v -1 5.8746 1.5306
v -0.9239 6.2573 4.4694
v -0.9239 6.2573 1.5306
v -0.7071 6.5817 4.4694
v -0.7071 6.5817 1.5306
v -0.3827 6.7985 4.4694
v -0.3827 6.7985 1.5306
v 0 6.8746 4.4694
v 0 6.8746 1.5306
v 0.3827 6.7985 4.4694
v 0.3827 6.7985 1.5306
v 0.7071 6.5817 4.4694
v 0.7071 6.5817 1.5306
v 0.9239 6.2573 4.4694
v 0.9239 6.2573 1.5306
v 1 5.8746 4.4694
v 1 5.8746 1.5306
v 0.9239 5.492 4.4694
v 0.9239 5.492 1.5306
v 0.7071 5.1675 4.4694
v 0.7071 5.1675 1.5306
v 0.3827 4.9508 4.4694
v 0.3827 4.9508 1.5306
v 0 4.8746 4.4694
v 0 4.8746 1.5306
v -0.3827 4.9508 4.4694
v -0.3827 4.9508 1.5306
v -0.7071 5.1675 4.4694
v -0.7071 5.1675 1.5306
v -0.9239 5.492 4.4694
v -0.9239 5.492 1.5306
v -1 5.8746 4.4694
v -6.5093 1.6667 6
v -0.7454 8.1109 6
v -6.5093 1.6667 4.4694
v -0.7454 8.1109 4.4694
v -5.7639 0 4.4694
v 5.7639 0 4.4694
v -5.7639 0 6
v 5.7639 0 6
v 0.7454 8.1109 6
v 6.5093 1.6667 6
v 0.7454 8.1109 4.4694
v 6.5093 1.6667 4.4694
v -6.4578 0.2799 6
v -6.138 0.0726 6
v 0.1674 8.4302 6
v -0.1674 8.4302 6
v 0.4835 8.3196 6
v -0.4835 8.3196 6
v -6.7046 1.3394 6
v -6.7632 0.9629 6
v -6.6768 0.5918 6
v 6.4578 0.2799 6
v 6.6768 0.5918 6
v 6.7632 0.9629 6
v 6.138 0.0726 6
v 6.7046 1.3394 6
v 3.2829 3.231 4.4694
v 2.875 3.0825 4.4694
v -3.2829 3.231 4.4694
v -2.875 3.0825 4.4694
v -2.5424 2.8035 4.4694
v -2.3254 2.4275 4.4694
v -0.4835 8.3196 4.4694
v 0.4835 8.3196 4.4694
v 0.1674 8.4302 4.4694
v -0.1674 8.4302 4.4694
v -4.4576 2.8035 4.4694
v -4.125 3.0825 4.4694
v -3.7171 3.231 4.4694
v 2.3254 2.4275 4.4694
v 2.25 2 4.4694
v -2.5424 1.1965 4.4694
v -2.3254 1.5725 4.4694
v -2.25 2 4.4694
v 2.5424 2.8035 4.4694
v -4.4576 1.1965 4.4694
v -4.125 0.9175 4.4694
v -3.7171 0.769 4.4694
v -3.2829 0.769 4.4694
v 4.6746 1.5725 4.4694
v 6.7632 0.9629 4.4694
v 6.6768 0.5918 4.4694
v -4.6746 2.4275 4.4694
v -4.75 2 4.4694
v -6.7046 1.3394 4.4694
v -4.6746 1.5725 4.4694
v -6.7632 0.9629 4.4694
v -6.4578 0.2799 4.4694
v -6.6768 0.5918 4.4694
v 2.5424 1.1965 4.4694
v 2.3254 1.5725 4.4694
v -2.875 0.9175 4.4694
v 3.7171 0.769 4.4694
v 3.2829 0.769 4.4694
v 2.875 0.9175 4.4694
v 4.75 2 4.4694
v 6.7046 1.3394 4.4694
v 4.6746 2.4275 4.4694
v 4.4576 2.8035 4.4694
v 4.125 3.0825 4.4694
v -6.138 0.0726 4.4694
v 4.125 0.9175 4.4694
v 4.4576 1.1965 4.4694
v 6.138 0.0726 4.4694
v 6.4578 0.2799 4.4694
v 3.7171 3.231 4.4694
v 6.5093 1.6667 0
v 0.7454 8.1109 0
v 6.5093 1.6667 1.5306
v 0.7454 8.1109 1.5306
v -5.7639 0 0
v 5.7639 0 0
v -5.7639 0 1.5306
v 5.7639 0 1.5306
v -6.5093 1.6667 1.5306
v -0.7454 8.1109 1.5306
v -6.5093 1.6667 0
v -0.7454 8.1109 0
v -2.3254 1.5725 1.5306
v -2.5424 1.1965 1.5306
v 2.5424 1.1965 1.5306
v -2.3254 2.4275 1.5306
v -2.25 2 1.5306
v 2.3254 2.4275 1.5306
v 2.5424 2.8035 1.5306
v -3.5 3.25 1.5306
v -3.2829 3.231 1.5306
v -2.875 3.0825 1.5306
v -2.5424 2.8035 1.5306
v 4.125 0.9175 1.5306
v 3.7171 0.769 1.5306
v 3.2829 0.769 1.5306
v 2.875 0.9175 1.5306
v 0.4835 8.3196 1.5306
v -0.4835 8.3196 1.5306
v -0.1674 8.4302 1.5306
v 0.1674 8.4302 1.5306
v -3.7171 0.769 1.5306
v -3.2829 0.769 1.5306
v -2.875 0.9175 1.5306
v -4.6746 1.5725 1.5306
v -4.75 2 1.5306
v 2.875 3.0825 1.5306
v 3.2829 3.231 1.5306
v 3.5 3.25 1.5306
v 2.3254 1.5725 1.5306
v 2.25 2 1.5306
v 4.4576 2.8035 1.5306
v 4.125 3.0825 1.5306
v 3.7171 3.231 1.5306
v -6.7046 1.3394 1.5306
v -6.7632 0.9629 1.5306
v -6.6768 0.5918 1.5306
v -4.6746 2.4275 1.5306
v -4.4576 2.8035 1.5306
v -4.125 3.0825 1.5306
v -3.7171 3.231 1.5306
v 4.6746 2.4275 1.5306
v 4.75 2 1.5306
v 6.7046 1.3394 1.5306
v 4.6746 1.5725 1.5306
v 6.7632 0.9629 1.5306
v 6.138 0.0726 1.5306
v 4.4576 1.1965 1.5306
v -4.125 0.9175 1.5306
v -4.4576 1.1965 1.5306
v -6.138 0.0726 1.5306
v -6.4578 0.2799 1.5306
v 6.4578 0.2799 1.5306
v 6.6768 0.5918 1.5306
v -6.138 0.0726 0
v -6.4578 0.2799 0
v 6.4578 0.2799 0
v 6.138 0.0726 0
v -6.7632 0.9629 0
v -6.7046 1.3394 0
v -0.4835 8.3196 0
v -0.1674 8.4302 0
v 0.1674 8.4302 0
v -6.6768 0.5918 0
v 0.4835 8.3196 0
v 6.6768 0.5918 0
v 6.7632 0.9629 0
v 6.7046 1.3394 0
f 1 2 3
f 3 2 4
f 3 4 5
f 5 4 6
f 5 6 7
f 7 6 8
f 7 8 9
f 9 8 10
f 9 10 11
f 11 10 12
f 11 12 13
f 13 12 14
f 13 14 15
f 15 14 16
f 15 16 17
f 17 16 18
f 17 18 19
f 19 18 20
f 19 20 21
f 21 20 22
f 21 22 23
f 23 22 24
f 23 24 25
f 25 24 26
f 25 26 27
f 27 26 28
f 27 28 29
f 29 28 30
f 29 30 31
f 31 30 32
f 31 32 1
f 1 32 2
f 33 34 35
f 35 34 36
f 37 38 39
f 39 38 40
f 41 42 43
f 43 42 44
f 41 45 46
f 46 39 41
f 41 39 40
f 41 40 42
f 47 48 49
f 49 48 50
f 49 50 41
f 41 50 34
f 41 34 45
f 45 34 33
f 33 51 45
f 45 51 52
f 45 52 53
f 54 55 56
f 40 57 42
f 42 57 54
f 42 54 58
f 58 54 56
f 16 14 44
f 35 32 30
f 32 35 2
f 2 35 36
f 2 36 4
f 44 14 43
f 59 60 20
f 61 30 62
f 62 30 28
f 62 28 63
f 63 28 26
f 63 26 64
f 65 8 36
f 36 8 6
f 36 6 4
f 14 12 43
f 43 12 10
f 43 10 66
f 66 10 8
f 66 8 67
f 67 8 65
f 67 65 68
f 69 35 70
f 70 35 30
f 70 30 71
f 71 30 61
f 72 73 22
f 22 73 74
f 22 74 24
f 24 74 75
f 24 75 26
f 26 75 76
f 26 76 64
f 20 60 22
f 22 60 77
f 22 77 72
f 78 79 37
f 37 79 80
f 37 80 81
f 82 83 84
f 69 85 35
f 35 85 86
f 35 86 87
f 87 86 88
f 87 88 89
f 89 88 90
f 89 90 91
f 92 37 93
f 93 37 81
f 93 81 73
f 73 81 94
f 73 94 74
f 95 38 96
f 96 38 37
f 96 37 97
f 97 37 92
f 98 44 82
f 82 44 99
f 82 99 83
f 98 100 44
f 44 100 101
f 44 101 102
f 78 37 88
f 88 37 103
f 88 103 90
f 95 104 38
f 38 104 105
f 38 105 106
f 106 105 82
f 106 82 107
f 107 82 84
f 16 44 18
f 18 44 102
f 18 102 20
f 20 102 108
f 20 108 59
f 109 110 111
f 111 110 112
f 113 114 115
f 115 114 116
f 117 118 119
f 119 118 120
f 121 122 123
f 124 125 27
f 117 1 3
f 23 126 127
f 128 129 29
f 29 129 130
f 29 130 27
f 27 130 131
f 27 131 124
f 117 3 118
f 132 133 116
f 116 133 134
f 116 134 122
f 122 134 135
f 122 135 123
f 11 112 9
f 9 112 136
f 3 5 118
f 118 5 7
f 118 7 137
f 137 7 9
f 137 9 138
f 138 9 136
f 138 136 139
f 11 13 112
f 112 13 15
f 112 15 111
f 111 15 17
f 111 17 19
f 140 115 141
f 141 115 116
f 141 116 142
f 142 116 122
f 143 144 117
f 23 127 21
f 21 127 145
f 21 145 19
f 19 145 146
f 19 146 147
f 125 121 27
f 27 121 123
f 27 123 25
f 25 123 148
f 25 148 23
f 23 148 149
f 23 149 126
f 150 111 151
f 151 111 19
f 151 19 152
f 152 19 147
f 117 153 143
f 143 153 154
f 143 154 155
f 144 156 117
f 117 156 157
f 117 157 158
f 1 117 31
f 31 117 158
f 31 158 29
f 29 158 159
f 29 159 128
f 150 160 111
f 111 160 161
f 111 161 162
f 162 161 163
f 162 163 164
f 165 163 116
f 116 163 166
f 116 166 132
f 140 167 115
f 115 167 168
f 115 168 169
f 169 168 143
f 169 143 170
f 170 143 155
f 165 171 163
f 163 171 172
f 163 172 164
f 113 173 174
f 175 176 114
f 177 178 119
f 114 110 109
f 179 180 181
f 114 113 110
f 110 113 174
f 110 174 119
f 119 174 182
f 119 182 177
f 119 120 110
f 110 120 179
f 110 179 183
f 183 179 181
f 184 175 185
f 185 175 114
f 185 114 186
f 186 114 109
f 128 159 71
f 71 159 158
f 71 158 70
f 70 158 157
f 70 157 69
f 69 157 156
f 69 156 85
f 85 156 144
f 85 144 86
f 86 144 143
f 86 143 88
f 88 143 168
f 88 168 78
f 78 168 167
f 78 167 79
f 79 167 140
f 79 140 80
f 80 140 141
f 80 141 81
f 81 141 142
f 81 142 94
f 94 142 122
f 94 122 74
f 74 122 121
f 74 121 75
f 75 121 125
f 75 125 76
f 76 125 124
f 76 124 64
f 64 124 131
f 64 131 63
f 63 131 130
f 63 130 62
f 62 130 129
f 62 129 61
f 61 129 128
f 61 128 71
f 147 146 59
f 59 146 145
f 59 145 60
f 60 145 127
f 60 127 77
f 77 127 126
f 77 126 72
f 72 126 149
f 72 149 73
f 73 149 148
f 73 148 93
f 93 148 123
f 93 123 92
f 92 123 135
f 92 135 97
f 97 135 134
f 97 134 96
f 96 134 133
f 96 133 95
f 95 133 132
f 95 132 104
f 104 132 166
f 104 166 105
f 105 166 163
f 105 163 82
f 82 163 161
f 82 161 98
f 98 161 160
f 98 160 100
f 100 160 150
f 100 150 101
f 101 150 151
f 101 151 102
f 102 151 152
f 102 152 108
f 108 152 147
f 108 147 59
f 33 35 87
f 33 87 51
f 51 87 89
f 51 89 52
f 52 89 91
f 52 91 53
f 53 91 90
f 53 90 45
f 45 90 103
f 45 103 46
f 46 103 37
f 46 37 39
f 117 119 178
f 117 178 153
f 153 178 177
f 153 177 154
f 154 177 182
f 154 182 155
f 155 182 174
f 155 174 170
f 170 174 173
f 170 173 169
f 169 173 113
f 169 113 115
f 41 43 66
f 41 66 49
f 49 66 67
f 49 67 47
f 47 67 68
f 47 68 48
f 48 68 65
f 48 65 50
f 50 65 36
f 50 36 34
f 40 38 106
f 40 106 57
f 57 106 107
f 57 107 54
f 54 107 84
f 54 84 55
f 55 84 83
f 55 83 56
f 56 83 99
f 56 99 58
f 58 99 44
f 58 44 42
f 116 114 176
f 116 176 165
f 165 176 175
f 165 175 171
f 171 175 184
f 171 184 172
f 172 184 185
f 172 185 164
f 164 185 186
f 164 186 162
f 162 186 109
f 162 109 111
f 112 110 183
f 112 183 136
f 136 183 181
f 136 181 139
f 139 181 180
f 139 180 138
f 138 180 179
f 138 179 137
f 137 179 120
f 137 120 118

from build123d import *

# Parameters (mm, degrees)
BOSS_EXTRUDE1_DEPTH     = 6
CUT_EXTRUDE1_DEPTH      = 14.416407865
CUT_EXTRUDE1_DEPTH_BACK = 14.416407865
SKETCH2_W               = 2.938755012
SKETCH2_H               = 8.94427191
SKETCH3_R               = 1
SKETCH3_R_2             = 1.25
BOSS_EXTRUDE2_DEPTH     = 6
FILLET1_R               = 1


with BuildPart() as part:
    # Sketch1 → Boss-Extrude1 (new body)
    with BuildSketch(Plane.XY):
        Polygon((-8, 0), (8, 0), (0, 8.94427191), align=None)
    extrude(amount=BOSS_EXTRUDE1_DEPTH)

    # Sketch2 → Cut-Extrude1 (cut, two sides: drawn at the far end of the back side and taken through both)
    with BuildSketch(Plane(origin=(0, 0, 0), x_dir=(0, 0, -1), z_dir=(1, 0, 0)).offset(-CUT_EXTRUDE1_DEPTH_BACK)):
        with Locations((-3, 4.472135955)):
            Rectangle(SKETCH2_W, SKETCH2_H)
    extrude(amount=CUT_EXTRUDE1_DEPTH + CUT_EXTRUDE1_DEPTH_BACK, mode=Mode.SUBTRACT)


with BuildPart() as cut_extrude1_piece_1:
    # of the separate pieces the step leaves, piece 1, a body of its own (cut_extrude1_pieces)
    add(part.part.solids().sort_by_distance((-8, 0, 0))[0])



with BuildPart() as cut_extrude1_piece_2:
    # of the separate pieces the step leaves, piece 2, a body of its own (cut_extrude1_pieces)
    add(part.part.solids().sort_by_distance((-8, 0, 4.469377506))[0])


with BuildPart() as cut_extrude1_piece_1_1:
    add(cut_extrude1_piece_1.part)

    add(cut_extrude1_piece_2.part)  # Boss-Extrude2 merges Cut-Extrude1 piece 2
    # Sketch3 → Boss-Extrude2 (add)
    with BuildSketch(Plane.XY):
        with Locations(Location((0, 5.874639057, 0), (0, 0, 90))):
            Circle(SKETCH3_R)
        with Locations(Location((-3.5, 2, 0), (0, 0, 90))):
            Circle(SKETCH3_R_2)
        with Locations(Location((3.5, 2, 0), (0, 0, 90))):
            Circle(SKETCH3_R_2)
    extrude(amount=BOSS_EXTRUDE2_DEPTH)

    # Fillet1
    fillet1_edges = [cut_extrude1_piece_1_1.edges().sort_by_distance(p)[0] for p in [
        (-8, 0, 5.234688753),
        (8, 0, 0.765311247),
        (-8, 0, 0.765311247),
        (0, 8.94427191, 0.765311247),
        (8, 0, 5.234688753),
        (0, 8.94427191, 5.234688753),
    ]]
    fillet(fillet1_edges, radius=FILLET1_R)


solid = cut_extrude1_piece_1_1.part
